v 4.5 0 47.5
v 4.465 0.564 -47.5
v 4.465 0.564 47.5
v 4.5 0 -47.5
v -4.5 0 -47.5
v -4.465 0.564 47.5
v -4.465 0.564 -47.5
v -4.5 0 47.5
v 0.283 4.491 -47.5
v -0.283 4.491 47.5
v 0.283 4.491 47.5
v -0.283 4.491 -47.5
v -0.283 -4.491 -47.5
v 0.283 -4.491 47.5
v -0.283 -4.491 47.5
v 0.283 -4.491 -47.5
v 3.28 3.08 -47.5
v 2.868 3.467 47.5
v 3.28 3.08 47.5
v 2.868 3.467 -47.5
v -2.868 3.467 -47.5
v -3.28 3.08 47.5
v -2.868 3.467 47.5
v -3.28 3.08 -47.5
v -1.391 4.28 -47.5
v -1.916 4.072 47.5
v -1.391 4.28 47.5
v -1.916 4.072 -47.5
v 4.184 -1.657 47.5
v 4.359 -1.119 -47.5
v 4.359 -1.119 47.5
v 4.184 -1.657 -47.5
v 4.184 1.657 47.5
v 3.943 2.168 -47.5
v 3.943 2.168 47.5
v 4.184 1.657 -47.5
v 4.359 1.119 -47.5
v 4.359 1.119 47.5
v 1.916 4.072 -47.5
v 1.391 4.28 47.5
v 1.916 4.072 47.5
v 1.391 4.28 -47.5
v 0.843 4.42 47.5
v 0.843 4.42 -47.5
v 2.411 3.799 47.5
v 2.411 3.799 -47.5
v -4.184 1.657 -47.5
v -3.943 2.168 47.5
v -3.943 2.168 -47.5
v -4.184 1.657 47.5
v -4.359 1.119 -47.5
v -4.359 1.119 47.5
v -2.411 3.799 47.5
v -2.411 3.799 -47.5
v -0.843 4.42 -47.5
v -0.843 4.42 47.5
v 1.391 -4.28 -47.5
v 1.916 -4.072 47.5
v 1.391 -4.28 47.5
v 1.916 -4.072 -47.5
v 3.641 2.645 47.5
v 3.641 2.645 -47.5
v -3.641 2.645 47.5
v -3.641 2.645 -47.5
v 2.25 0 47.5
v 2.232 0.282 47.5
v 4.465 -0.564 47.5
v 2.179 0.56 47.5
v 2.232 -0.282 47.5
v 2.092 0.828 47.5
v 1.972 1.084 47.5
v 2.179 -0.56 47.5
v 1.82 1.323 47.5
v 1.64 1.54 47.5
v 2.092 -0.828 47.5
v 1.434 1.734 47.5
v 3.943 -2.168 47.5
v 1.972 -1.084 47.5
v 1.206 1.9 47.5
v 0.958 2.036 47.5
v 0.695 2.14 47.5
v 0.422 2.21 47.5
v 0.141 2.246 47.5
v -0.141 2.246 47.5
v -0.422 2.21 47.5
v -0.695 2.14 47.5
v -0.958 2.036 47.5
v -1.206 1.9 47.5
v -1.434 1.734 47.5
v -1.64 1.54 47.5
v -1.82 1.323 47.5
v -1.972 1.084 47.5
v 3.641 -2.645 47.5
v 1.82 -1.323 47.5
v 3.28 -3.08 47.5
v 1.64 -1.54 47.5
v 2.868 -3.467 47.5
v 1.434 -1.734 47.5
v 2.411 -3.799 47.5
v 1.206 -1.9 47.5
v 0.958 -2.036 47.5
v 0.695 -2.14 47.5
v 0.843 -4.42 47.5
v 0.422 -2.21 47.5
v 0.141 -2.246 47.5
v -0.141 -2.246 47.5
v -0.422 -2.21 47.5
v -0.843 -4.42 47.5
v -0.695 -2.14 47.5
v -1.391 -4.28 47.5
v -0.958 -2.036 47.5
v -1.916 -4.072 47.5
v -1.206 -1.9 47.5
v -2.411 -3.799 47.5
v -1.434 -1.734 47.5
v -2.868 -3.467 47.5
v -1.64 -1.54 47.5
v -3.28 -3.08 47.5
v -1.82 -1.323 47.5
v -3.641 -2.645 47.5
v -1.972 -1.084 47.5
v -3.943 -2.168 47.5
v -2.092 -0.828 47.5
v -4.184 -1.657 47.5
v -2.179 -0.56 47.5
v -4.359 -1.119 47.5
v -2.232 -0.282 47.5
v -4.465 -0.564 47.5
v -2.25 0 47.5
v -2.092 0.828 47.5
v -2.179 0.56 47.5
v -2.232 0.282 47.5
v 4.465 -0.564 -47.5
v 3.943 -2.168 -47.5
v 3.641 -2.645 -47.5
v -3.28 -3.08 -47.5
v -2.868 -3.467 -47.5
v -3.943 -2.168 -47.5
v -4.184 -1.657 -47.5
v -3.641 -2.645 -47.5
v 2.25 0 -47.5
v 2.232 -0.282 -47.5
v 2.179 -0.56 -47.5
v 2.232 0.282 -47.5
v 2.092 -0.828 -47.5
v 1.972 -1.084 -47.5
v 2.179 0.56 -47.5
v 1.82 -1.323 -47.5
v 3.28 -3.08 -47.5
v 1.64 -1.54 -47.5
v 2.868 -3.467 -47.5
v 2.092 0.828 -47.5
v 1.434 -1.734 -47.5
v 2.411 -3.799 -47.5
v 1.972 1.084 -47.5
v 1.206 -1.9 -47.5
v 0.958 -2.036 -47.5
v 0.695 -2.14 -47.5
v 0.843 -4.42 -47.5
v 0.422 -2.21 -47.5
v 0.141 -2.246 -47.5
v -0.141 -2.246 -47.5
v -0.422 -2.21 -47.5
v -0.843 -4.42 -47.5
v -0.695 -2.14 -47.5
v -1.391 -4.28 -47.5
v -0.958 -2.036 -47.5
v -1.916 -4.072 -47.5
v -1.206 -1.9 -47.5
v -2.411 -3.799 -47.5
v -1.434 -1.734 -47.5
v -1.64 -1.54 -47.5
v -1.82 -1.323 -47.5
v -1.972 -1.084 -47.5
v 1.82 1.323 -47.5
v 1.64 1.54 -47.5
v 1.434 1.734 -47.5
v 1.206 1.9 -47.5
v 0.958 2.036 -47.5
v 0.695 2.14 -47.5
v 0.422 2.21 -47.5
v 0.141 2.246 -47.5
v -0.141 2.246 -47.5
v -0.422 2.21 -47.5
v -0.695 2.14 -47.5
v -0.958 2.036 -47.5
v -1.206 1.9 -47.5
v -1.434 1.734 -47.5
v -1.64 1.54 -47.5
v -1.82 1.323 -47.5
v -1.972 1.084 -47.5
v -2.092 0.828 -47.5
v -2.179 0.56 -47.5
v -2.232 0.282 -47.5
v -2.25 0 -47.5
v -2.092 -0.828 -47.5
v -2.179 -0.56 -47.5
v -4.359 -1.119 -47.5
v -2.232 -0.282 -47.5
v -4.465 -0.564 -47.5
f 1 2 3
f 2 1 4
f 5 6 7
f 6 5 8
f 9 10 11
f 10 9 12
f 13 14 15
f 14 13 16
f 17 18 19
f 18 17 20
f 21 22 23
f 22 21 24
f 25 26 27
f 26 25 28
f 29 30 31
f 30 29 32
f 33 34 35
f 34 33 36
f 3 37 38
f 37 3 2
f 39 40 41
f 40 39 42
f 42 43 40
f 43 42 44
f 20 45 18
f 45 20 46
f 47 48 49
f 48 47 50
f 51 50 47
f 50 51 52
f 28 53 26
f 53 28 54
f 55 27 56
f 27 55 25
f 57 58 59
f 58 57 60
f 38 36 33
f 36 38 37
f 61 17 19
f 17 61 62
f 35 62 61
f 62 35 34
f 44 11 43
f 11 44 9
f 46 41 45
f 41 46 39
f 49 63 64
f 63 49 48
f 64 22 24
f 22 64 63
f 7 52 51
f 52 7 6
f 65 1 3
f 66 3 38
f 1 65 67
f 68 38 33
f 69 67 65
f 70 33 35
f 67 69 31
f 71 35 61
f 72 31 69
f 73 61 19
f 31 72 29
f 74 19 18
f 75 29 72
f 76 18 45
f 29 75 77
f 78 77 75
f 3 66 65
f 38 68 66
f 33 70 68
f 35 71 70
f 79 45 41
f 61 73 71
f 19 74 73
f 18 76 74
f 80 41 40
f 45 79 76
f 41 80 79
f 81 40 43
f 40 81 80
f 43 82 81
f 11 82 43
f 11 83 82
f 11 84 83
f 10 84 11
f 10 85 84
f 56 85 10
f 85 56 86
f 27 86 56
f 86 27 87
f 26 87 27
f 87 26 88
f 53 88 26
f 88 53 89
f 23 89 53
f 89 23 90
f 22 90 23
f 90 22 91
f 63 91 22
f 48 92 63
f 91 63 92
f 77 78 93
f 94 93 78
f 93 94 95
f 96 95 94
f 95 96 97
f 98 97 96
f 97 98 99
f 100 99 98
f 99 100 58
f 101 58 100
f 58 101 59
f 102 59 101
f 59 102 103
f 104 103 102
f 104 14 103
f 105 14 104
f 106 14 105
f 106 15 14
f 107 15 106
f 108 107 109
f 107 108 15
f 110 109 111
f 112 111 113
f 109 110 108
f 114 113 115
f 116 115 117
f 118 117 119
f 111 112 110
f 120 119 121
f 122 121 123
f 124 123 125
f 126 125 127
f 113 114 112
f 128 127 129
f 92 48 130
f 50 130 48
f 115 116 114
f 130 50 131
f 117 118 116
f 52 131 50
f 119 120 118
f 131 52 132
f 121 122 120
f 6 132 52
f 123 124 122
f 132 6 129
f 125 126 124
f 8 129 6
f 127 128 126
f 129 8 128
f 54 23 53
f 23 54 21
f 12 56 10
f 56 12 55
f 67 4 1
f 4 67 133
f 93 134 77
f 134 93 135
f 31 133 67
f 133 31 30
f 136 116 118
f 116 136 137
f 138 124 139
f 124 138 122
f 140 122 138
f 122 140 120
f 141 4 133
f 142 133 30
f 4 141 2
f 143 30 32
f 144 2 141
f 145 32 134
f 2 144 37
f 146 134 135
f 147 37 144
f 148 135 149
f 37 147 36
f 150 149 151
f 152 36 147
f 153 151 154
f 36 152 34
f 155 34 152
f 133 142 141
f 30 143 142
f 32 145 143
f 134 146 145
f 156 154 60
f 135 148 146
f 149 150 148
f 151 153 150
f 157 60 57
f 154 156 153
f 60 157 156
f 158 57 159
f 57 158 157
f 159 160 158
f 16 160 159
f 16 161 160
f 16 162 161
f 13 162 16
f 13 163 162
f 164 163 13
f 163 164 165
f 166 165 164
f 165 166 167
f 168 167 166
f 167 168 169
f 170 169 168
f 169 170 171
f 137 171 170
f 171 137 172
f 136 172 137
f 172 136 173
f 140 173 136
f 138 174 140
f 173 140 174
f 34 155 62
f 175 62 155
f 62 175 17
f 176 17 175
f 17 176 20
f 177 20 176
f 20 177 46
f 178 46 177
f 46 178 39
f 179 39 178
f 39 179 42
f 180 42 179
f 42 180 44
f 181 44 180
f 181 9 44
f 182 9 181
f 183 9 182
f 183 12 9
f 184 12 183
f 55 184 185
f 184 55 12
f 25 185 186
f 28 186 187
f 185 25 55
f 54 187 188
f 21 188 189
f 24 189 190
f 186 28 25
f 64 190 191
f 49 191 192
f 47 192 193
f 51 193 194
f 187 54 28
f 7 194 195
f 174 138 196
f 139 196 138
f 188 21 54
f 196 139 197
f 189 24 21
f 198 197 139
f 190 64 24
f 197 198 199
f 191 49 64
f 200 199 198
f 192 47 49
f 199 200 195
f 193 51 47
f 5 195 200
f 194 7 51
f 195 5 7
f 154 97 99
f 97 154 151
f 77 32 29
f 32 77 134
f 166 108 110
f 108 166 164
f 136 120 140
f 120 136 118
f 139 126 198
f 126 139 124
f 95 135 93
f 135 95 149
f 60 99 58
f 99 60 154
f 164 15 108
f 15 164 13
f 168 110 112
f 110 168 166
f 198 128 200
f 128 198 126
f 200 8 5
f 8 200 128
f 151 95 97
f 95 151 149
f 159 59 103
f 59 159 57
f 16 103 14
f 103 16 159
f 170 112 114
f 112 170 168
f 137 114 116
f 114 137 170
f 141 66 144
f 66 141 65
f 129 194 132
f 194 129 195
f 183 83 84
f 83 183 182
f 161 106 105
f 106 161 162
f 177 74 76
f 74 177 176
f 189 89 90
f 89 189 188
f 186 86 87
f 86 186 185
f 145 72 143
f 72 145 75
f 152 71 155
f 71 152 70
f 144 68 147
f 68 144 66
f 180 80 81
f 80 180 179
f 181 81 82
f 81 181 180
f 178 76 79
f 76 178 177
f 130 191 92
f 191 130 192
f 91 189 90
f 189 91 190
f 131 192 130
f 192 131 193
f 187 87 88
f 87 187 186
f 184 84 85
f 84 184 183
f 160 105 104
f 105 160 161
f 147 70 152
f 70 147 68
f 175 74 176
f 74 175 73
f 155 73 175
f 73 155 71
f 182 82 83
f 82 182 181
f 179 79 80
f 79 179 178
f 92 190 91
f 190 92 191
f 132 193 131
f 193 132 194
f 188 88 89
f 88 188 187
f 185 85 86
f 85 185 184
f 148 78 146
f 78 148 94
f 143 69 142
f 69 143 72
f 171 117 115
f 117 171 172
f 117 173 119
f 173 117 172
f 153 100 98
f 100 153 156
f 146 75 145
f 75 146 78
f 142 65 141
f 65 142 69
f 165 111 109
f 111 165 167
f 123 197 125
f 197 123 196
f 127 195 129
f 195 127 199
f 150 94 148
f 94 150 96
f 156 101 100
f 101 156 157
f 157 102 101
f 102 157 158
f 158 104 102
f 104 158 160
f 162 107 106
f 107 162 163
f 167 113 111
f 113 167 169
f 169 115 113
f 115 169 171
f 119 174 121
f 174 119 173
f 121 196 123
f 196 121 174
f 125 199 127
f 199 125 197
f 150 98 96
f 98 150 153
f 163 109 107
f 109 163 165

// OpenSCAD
$fn = 50;


difference() {
	union() {
		translate(v = [0, 0, -47.5000000000]) {
			cylinder(h = 95, r = 4.5000000000);
		}
	}
	union() {
		translate(v = [0, 0, -100.0000000000]) {
			cylinder(h = 200, r = 2.2500000000);
		}
	}
}
